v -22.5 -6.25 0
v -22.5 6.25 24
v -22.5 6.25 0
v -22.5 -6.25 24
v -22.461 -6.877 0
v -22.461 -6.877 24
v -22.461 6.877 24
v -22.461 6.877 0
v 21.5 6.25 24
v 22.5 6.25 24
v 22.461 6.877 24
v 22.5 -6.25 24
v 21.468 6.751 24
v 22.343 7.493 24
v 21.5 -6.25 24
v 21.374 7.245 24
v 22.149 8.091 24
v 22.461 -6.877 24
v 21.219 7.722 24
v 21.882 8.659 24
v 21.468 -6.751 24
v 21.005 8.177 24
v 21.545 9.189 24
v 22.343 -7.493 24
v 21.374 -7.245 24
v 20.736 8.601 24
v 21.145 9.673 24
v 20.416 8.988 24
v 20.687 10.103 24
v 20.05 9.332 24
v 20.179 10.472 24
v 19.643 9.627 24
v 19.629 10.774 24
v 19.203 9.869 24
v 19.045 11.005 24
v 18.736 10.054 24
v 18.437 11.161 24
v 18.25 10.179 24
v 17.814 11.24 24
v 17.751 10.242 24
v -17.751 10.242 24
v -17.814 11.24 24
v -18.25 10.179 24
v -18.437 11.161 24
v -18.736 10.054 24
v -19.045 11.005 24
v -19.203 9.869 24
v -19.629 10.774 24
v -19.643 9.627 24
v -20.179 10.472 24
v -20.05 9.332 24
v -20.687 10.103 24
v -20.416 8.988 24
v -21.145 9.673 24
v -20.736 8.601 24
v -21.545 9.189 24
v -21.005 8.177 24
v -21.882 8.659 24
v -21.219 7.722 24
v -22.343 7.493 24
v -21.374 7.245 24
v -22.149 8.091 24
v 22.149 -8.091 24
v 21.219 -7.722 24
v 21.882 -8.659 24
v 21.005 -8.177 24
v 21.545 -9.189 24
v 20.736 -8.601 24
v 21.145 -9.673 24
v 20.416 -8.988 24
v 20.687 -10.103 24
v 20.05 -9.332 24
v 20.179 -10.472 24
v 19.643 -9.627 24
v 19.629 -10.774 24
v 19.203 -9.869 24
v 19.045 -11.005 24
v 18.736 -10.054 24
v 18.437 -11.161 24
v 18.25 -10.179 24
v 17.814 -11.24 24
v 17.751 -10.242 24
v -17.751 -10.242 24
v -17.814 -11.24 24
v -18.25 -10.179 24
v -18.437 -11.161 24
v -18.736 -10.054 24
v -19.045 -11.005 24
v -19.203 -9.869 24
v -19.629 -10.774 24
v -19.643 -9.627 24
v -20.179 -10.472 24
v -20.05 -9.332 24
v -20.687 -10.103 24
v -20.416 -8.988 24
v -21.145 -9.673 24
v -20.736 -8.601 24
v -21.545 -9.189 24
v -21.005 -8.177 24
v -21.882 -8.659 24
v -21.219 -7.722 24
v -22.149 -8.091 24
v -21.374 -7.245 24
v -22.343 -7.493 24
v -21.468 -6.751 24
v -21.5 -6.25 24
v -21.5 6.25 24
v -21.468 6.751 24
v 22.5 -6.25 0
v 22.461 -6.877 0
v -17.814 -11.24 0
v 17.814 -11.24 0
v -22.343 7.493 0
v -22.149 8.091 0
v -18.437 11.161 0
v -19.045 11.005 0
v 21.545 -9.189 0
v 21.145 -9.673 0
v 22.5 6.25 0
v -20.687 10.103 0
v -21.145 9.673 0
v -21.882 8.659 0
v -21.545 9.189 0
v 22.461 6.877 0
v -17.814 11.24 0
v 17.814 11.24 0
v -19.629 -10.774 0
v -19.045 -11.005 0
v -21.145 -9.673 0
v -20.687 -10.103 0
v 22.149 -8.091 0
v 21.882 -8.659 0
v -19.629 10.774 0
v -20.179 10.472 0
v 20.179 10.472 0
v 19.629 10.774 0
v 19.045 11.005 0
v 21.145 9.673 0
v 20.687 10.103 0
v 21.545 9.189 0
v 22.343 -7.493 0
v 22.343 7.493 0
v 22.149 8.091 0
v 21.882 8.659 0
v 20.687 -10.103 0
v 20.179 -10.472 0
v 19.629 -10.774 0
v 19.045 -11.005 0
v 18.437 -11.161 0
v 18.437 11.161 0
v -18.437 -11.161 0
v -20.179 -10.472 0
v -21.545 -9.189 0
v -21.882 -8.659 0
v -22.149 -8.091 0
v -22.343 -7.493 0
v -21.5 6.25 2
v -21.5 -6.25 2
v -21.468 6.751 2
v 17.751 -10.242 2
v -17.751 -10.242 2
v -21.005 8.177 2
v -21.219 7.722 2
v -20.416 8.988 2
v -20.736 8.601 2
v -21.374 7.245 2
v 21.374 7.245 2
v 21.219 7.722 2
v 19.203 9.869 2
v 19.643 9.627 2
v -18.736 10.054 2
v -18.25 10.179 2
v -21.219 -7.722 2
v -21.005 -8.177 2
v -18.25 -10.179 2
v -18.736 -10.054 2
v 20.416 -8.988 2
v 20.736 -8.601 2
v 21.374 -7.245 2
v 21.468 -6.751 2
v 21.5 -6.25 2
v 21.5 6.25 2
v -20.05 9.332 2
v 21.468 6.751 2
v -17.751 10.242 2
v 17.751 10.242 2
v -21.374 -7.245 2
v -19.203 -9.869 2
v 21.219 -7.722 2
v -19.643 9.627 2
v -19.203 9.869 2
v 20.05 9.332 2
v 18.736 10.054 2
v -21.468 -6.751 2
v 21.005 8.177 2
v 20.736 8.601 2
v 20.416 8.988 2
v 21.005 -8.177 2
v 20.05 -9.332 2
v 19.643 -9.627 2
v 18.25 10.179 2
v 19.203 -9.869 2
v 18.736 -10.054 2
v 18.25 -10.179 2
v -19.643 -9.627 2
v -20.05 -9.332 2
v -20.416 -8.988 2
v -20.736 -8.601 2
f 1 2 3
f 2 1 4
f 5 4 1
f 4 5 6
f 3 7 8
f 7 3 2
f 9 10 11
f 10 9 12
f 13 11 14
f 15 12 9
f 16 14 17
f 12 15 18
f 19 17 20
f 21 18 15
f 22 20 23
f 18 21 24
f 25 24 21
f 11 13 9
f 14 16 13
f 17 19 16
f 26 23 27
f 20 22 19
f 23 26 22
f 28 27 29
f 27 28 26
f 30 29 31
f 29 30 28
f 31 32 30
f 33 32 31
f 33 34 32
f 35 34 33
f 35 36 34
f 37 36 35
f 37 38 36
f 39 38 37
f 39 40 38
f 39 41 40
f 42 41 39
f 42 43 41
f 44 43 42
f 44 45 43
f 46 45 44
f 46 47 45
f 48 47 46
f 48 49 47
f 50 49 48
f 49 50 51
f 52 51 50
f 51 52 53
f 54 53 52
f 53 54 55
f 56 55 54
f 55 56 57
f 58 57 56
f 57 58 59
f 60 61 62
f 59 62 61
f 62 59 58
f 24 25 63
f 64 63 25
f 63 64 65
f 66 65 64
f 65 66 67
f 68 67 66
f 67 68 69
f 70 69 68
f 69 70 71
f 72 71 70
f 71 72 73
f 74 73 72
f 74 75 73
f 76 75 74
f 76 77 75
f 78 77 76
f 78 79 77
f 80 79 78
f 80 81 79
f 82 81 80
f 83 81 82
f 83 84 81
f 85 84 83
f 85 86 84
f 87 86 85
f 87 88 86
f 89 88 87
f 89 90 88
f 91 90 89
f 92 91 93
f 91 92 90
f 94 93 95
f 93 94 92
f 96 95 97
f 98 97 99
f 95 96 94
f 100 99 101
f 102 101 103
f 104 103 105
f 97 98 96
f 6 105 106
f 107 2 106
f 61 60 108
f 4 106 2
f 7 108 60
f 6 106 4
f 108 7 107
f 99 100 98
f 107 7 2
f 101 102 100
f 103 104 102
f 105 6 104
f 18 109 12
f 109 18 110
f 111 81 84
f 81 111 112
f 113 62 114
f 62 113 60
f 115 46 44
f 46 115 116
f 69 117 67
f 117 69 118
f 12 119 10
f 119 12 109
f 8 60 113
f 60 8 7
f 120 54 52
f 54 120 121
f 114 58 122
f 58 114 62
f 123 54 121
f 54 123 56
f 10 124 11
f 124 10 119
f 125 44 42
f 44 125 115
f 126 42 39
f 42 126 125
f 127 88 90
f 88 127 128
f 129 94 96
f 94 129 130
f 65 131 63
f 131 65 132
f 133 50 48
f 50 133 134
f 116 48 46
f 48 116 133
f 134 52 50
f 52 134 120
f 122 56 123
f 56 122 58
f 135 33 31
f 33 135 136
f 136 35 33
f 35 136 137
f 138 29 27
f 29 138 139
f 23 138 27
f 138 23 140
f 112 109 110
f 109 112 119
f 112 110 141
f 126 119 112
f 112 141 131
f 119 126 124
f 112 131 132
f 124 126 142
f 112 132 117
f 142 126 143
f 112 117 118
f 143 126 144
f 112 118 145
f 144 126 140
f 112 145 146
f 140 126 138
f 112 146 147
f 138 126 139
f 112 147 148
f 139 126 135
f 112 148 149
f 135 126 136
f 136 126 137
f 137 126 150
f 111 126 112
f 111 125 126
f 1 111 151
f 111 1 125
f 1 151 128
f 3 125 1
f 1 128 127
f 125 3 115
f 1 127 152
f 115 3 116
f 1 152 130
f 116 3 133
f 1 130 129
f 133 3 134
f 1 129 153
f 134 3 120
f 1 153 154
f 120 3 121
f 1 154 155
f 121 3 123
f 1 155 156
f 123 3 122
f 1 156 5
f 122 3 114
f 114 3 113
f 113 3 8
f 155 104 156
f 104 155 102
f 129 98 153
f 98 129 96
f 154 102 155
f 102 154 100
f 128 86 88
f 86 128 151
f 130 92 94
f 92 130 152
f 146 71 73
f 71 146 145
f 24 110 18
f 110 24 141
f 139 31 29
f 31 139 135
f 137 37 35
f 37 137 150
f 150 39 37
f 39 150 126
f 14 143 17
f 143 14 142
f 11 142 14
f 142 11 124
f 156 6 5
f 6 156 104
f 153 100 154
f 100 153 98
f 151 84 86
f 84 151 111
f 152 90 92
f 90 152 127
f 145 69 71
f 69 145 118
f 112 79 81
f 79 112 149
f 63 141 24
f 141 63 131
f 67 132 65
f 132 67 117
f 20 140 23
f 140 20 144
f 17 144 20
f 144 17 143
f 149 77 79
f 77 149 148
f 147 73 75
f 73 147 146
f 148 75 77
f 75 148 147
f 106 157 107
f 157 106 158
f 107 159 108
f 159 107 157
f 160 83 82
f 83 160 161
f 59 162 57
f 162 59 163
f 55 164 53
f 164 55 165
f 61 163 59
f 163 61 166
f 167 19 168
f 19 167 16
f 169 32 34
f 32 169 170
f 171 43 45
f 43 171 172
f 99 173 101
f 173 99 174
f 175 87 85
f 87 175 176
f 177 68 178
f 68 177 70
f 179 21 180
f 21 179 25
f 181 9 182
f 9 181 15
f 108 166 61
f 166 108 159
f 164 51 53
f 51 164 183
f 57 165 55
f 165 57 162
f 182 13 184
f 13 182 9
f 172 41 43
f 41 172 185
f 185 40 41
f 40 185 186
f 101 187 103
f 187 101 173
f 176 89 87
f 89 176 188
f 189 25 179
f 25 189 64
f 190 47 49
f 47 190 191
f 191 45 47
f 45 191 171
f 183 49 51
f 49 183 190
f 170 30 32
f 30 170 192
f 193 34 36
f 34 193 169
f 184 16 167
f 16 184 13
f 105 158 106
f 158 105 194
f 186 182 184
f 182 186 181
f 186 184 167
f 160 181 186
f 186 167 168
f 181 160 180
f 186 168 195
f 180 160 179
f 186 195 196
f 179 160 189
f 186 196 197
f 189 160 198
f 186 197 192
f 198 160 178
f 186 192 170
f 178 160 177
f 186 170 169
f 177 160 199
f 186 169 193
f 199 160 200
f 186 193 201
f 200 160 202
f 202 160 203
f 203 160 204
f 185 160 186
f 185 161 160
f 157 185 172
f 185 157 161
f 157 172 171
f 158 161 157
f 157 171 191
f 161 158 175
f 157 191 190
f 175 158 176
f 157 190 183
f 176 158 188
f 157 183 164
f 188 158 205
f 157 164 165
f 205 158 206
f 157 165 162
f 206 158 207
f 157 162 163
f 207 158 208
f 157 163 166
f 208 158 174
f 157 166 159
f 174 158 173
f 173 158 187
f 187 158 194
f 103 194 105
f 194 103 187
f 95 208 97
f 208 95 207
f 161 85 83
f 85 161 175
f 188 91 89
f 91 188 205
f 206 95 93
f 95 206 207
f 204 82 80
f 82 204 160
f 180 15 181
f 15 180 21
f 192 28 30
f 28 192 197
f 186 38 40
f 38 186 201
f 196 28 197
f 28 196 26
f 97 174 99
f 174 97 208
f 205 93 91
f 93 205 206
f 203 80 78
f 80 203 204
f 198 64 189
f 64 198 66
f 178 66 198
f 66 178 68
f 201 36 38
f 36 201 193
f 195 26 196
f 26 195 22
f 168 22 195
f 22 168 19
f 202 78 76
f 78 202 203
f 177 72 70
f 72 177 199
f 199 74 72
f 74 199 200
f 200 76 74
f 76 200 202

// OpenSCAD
$fn = 50;


difference() {
	union() {
		hull() {
			translate(v = [-17.5000000000, 6.2500000000, 0]) {
				cylinder(h = 24, r = 5);
			}
			translate(v = [17.5000000000, 6.2500000000, 0]) {
				cylinder(h = 24, r = 5);
			}
			translate(v = [-17.5000000000, -6.2500000000, 0]) {
				cylinder(h = 24, r = 5);
			}
			translate(v = [17.5000000000, -6.2500000000, 0]) {
				cylinder(h = 24, r = 5);
			}
		}
	}
	union() {
		translate(v = [0, 0, 2]) {
			hull() {
				translate(v = [-17.5000000000, 6.2500000000, 0]) {
					cylinder(h = 22, r = 4);
				}
				translate(v = [17.5000000000, 6.2500000000, 0]) {
					cylinder(h = 22, r = 4);
				}
				translate(v = [-17.5000000000, -6.2500000000, 0]) {
					cylinder(h = 22, r = 4);
				}
				translate(v = [17.5000000000, -6.2500000000, 0]) {
					cylinder(h = 22, r = 4);
				}
			}
		}
	}
}
